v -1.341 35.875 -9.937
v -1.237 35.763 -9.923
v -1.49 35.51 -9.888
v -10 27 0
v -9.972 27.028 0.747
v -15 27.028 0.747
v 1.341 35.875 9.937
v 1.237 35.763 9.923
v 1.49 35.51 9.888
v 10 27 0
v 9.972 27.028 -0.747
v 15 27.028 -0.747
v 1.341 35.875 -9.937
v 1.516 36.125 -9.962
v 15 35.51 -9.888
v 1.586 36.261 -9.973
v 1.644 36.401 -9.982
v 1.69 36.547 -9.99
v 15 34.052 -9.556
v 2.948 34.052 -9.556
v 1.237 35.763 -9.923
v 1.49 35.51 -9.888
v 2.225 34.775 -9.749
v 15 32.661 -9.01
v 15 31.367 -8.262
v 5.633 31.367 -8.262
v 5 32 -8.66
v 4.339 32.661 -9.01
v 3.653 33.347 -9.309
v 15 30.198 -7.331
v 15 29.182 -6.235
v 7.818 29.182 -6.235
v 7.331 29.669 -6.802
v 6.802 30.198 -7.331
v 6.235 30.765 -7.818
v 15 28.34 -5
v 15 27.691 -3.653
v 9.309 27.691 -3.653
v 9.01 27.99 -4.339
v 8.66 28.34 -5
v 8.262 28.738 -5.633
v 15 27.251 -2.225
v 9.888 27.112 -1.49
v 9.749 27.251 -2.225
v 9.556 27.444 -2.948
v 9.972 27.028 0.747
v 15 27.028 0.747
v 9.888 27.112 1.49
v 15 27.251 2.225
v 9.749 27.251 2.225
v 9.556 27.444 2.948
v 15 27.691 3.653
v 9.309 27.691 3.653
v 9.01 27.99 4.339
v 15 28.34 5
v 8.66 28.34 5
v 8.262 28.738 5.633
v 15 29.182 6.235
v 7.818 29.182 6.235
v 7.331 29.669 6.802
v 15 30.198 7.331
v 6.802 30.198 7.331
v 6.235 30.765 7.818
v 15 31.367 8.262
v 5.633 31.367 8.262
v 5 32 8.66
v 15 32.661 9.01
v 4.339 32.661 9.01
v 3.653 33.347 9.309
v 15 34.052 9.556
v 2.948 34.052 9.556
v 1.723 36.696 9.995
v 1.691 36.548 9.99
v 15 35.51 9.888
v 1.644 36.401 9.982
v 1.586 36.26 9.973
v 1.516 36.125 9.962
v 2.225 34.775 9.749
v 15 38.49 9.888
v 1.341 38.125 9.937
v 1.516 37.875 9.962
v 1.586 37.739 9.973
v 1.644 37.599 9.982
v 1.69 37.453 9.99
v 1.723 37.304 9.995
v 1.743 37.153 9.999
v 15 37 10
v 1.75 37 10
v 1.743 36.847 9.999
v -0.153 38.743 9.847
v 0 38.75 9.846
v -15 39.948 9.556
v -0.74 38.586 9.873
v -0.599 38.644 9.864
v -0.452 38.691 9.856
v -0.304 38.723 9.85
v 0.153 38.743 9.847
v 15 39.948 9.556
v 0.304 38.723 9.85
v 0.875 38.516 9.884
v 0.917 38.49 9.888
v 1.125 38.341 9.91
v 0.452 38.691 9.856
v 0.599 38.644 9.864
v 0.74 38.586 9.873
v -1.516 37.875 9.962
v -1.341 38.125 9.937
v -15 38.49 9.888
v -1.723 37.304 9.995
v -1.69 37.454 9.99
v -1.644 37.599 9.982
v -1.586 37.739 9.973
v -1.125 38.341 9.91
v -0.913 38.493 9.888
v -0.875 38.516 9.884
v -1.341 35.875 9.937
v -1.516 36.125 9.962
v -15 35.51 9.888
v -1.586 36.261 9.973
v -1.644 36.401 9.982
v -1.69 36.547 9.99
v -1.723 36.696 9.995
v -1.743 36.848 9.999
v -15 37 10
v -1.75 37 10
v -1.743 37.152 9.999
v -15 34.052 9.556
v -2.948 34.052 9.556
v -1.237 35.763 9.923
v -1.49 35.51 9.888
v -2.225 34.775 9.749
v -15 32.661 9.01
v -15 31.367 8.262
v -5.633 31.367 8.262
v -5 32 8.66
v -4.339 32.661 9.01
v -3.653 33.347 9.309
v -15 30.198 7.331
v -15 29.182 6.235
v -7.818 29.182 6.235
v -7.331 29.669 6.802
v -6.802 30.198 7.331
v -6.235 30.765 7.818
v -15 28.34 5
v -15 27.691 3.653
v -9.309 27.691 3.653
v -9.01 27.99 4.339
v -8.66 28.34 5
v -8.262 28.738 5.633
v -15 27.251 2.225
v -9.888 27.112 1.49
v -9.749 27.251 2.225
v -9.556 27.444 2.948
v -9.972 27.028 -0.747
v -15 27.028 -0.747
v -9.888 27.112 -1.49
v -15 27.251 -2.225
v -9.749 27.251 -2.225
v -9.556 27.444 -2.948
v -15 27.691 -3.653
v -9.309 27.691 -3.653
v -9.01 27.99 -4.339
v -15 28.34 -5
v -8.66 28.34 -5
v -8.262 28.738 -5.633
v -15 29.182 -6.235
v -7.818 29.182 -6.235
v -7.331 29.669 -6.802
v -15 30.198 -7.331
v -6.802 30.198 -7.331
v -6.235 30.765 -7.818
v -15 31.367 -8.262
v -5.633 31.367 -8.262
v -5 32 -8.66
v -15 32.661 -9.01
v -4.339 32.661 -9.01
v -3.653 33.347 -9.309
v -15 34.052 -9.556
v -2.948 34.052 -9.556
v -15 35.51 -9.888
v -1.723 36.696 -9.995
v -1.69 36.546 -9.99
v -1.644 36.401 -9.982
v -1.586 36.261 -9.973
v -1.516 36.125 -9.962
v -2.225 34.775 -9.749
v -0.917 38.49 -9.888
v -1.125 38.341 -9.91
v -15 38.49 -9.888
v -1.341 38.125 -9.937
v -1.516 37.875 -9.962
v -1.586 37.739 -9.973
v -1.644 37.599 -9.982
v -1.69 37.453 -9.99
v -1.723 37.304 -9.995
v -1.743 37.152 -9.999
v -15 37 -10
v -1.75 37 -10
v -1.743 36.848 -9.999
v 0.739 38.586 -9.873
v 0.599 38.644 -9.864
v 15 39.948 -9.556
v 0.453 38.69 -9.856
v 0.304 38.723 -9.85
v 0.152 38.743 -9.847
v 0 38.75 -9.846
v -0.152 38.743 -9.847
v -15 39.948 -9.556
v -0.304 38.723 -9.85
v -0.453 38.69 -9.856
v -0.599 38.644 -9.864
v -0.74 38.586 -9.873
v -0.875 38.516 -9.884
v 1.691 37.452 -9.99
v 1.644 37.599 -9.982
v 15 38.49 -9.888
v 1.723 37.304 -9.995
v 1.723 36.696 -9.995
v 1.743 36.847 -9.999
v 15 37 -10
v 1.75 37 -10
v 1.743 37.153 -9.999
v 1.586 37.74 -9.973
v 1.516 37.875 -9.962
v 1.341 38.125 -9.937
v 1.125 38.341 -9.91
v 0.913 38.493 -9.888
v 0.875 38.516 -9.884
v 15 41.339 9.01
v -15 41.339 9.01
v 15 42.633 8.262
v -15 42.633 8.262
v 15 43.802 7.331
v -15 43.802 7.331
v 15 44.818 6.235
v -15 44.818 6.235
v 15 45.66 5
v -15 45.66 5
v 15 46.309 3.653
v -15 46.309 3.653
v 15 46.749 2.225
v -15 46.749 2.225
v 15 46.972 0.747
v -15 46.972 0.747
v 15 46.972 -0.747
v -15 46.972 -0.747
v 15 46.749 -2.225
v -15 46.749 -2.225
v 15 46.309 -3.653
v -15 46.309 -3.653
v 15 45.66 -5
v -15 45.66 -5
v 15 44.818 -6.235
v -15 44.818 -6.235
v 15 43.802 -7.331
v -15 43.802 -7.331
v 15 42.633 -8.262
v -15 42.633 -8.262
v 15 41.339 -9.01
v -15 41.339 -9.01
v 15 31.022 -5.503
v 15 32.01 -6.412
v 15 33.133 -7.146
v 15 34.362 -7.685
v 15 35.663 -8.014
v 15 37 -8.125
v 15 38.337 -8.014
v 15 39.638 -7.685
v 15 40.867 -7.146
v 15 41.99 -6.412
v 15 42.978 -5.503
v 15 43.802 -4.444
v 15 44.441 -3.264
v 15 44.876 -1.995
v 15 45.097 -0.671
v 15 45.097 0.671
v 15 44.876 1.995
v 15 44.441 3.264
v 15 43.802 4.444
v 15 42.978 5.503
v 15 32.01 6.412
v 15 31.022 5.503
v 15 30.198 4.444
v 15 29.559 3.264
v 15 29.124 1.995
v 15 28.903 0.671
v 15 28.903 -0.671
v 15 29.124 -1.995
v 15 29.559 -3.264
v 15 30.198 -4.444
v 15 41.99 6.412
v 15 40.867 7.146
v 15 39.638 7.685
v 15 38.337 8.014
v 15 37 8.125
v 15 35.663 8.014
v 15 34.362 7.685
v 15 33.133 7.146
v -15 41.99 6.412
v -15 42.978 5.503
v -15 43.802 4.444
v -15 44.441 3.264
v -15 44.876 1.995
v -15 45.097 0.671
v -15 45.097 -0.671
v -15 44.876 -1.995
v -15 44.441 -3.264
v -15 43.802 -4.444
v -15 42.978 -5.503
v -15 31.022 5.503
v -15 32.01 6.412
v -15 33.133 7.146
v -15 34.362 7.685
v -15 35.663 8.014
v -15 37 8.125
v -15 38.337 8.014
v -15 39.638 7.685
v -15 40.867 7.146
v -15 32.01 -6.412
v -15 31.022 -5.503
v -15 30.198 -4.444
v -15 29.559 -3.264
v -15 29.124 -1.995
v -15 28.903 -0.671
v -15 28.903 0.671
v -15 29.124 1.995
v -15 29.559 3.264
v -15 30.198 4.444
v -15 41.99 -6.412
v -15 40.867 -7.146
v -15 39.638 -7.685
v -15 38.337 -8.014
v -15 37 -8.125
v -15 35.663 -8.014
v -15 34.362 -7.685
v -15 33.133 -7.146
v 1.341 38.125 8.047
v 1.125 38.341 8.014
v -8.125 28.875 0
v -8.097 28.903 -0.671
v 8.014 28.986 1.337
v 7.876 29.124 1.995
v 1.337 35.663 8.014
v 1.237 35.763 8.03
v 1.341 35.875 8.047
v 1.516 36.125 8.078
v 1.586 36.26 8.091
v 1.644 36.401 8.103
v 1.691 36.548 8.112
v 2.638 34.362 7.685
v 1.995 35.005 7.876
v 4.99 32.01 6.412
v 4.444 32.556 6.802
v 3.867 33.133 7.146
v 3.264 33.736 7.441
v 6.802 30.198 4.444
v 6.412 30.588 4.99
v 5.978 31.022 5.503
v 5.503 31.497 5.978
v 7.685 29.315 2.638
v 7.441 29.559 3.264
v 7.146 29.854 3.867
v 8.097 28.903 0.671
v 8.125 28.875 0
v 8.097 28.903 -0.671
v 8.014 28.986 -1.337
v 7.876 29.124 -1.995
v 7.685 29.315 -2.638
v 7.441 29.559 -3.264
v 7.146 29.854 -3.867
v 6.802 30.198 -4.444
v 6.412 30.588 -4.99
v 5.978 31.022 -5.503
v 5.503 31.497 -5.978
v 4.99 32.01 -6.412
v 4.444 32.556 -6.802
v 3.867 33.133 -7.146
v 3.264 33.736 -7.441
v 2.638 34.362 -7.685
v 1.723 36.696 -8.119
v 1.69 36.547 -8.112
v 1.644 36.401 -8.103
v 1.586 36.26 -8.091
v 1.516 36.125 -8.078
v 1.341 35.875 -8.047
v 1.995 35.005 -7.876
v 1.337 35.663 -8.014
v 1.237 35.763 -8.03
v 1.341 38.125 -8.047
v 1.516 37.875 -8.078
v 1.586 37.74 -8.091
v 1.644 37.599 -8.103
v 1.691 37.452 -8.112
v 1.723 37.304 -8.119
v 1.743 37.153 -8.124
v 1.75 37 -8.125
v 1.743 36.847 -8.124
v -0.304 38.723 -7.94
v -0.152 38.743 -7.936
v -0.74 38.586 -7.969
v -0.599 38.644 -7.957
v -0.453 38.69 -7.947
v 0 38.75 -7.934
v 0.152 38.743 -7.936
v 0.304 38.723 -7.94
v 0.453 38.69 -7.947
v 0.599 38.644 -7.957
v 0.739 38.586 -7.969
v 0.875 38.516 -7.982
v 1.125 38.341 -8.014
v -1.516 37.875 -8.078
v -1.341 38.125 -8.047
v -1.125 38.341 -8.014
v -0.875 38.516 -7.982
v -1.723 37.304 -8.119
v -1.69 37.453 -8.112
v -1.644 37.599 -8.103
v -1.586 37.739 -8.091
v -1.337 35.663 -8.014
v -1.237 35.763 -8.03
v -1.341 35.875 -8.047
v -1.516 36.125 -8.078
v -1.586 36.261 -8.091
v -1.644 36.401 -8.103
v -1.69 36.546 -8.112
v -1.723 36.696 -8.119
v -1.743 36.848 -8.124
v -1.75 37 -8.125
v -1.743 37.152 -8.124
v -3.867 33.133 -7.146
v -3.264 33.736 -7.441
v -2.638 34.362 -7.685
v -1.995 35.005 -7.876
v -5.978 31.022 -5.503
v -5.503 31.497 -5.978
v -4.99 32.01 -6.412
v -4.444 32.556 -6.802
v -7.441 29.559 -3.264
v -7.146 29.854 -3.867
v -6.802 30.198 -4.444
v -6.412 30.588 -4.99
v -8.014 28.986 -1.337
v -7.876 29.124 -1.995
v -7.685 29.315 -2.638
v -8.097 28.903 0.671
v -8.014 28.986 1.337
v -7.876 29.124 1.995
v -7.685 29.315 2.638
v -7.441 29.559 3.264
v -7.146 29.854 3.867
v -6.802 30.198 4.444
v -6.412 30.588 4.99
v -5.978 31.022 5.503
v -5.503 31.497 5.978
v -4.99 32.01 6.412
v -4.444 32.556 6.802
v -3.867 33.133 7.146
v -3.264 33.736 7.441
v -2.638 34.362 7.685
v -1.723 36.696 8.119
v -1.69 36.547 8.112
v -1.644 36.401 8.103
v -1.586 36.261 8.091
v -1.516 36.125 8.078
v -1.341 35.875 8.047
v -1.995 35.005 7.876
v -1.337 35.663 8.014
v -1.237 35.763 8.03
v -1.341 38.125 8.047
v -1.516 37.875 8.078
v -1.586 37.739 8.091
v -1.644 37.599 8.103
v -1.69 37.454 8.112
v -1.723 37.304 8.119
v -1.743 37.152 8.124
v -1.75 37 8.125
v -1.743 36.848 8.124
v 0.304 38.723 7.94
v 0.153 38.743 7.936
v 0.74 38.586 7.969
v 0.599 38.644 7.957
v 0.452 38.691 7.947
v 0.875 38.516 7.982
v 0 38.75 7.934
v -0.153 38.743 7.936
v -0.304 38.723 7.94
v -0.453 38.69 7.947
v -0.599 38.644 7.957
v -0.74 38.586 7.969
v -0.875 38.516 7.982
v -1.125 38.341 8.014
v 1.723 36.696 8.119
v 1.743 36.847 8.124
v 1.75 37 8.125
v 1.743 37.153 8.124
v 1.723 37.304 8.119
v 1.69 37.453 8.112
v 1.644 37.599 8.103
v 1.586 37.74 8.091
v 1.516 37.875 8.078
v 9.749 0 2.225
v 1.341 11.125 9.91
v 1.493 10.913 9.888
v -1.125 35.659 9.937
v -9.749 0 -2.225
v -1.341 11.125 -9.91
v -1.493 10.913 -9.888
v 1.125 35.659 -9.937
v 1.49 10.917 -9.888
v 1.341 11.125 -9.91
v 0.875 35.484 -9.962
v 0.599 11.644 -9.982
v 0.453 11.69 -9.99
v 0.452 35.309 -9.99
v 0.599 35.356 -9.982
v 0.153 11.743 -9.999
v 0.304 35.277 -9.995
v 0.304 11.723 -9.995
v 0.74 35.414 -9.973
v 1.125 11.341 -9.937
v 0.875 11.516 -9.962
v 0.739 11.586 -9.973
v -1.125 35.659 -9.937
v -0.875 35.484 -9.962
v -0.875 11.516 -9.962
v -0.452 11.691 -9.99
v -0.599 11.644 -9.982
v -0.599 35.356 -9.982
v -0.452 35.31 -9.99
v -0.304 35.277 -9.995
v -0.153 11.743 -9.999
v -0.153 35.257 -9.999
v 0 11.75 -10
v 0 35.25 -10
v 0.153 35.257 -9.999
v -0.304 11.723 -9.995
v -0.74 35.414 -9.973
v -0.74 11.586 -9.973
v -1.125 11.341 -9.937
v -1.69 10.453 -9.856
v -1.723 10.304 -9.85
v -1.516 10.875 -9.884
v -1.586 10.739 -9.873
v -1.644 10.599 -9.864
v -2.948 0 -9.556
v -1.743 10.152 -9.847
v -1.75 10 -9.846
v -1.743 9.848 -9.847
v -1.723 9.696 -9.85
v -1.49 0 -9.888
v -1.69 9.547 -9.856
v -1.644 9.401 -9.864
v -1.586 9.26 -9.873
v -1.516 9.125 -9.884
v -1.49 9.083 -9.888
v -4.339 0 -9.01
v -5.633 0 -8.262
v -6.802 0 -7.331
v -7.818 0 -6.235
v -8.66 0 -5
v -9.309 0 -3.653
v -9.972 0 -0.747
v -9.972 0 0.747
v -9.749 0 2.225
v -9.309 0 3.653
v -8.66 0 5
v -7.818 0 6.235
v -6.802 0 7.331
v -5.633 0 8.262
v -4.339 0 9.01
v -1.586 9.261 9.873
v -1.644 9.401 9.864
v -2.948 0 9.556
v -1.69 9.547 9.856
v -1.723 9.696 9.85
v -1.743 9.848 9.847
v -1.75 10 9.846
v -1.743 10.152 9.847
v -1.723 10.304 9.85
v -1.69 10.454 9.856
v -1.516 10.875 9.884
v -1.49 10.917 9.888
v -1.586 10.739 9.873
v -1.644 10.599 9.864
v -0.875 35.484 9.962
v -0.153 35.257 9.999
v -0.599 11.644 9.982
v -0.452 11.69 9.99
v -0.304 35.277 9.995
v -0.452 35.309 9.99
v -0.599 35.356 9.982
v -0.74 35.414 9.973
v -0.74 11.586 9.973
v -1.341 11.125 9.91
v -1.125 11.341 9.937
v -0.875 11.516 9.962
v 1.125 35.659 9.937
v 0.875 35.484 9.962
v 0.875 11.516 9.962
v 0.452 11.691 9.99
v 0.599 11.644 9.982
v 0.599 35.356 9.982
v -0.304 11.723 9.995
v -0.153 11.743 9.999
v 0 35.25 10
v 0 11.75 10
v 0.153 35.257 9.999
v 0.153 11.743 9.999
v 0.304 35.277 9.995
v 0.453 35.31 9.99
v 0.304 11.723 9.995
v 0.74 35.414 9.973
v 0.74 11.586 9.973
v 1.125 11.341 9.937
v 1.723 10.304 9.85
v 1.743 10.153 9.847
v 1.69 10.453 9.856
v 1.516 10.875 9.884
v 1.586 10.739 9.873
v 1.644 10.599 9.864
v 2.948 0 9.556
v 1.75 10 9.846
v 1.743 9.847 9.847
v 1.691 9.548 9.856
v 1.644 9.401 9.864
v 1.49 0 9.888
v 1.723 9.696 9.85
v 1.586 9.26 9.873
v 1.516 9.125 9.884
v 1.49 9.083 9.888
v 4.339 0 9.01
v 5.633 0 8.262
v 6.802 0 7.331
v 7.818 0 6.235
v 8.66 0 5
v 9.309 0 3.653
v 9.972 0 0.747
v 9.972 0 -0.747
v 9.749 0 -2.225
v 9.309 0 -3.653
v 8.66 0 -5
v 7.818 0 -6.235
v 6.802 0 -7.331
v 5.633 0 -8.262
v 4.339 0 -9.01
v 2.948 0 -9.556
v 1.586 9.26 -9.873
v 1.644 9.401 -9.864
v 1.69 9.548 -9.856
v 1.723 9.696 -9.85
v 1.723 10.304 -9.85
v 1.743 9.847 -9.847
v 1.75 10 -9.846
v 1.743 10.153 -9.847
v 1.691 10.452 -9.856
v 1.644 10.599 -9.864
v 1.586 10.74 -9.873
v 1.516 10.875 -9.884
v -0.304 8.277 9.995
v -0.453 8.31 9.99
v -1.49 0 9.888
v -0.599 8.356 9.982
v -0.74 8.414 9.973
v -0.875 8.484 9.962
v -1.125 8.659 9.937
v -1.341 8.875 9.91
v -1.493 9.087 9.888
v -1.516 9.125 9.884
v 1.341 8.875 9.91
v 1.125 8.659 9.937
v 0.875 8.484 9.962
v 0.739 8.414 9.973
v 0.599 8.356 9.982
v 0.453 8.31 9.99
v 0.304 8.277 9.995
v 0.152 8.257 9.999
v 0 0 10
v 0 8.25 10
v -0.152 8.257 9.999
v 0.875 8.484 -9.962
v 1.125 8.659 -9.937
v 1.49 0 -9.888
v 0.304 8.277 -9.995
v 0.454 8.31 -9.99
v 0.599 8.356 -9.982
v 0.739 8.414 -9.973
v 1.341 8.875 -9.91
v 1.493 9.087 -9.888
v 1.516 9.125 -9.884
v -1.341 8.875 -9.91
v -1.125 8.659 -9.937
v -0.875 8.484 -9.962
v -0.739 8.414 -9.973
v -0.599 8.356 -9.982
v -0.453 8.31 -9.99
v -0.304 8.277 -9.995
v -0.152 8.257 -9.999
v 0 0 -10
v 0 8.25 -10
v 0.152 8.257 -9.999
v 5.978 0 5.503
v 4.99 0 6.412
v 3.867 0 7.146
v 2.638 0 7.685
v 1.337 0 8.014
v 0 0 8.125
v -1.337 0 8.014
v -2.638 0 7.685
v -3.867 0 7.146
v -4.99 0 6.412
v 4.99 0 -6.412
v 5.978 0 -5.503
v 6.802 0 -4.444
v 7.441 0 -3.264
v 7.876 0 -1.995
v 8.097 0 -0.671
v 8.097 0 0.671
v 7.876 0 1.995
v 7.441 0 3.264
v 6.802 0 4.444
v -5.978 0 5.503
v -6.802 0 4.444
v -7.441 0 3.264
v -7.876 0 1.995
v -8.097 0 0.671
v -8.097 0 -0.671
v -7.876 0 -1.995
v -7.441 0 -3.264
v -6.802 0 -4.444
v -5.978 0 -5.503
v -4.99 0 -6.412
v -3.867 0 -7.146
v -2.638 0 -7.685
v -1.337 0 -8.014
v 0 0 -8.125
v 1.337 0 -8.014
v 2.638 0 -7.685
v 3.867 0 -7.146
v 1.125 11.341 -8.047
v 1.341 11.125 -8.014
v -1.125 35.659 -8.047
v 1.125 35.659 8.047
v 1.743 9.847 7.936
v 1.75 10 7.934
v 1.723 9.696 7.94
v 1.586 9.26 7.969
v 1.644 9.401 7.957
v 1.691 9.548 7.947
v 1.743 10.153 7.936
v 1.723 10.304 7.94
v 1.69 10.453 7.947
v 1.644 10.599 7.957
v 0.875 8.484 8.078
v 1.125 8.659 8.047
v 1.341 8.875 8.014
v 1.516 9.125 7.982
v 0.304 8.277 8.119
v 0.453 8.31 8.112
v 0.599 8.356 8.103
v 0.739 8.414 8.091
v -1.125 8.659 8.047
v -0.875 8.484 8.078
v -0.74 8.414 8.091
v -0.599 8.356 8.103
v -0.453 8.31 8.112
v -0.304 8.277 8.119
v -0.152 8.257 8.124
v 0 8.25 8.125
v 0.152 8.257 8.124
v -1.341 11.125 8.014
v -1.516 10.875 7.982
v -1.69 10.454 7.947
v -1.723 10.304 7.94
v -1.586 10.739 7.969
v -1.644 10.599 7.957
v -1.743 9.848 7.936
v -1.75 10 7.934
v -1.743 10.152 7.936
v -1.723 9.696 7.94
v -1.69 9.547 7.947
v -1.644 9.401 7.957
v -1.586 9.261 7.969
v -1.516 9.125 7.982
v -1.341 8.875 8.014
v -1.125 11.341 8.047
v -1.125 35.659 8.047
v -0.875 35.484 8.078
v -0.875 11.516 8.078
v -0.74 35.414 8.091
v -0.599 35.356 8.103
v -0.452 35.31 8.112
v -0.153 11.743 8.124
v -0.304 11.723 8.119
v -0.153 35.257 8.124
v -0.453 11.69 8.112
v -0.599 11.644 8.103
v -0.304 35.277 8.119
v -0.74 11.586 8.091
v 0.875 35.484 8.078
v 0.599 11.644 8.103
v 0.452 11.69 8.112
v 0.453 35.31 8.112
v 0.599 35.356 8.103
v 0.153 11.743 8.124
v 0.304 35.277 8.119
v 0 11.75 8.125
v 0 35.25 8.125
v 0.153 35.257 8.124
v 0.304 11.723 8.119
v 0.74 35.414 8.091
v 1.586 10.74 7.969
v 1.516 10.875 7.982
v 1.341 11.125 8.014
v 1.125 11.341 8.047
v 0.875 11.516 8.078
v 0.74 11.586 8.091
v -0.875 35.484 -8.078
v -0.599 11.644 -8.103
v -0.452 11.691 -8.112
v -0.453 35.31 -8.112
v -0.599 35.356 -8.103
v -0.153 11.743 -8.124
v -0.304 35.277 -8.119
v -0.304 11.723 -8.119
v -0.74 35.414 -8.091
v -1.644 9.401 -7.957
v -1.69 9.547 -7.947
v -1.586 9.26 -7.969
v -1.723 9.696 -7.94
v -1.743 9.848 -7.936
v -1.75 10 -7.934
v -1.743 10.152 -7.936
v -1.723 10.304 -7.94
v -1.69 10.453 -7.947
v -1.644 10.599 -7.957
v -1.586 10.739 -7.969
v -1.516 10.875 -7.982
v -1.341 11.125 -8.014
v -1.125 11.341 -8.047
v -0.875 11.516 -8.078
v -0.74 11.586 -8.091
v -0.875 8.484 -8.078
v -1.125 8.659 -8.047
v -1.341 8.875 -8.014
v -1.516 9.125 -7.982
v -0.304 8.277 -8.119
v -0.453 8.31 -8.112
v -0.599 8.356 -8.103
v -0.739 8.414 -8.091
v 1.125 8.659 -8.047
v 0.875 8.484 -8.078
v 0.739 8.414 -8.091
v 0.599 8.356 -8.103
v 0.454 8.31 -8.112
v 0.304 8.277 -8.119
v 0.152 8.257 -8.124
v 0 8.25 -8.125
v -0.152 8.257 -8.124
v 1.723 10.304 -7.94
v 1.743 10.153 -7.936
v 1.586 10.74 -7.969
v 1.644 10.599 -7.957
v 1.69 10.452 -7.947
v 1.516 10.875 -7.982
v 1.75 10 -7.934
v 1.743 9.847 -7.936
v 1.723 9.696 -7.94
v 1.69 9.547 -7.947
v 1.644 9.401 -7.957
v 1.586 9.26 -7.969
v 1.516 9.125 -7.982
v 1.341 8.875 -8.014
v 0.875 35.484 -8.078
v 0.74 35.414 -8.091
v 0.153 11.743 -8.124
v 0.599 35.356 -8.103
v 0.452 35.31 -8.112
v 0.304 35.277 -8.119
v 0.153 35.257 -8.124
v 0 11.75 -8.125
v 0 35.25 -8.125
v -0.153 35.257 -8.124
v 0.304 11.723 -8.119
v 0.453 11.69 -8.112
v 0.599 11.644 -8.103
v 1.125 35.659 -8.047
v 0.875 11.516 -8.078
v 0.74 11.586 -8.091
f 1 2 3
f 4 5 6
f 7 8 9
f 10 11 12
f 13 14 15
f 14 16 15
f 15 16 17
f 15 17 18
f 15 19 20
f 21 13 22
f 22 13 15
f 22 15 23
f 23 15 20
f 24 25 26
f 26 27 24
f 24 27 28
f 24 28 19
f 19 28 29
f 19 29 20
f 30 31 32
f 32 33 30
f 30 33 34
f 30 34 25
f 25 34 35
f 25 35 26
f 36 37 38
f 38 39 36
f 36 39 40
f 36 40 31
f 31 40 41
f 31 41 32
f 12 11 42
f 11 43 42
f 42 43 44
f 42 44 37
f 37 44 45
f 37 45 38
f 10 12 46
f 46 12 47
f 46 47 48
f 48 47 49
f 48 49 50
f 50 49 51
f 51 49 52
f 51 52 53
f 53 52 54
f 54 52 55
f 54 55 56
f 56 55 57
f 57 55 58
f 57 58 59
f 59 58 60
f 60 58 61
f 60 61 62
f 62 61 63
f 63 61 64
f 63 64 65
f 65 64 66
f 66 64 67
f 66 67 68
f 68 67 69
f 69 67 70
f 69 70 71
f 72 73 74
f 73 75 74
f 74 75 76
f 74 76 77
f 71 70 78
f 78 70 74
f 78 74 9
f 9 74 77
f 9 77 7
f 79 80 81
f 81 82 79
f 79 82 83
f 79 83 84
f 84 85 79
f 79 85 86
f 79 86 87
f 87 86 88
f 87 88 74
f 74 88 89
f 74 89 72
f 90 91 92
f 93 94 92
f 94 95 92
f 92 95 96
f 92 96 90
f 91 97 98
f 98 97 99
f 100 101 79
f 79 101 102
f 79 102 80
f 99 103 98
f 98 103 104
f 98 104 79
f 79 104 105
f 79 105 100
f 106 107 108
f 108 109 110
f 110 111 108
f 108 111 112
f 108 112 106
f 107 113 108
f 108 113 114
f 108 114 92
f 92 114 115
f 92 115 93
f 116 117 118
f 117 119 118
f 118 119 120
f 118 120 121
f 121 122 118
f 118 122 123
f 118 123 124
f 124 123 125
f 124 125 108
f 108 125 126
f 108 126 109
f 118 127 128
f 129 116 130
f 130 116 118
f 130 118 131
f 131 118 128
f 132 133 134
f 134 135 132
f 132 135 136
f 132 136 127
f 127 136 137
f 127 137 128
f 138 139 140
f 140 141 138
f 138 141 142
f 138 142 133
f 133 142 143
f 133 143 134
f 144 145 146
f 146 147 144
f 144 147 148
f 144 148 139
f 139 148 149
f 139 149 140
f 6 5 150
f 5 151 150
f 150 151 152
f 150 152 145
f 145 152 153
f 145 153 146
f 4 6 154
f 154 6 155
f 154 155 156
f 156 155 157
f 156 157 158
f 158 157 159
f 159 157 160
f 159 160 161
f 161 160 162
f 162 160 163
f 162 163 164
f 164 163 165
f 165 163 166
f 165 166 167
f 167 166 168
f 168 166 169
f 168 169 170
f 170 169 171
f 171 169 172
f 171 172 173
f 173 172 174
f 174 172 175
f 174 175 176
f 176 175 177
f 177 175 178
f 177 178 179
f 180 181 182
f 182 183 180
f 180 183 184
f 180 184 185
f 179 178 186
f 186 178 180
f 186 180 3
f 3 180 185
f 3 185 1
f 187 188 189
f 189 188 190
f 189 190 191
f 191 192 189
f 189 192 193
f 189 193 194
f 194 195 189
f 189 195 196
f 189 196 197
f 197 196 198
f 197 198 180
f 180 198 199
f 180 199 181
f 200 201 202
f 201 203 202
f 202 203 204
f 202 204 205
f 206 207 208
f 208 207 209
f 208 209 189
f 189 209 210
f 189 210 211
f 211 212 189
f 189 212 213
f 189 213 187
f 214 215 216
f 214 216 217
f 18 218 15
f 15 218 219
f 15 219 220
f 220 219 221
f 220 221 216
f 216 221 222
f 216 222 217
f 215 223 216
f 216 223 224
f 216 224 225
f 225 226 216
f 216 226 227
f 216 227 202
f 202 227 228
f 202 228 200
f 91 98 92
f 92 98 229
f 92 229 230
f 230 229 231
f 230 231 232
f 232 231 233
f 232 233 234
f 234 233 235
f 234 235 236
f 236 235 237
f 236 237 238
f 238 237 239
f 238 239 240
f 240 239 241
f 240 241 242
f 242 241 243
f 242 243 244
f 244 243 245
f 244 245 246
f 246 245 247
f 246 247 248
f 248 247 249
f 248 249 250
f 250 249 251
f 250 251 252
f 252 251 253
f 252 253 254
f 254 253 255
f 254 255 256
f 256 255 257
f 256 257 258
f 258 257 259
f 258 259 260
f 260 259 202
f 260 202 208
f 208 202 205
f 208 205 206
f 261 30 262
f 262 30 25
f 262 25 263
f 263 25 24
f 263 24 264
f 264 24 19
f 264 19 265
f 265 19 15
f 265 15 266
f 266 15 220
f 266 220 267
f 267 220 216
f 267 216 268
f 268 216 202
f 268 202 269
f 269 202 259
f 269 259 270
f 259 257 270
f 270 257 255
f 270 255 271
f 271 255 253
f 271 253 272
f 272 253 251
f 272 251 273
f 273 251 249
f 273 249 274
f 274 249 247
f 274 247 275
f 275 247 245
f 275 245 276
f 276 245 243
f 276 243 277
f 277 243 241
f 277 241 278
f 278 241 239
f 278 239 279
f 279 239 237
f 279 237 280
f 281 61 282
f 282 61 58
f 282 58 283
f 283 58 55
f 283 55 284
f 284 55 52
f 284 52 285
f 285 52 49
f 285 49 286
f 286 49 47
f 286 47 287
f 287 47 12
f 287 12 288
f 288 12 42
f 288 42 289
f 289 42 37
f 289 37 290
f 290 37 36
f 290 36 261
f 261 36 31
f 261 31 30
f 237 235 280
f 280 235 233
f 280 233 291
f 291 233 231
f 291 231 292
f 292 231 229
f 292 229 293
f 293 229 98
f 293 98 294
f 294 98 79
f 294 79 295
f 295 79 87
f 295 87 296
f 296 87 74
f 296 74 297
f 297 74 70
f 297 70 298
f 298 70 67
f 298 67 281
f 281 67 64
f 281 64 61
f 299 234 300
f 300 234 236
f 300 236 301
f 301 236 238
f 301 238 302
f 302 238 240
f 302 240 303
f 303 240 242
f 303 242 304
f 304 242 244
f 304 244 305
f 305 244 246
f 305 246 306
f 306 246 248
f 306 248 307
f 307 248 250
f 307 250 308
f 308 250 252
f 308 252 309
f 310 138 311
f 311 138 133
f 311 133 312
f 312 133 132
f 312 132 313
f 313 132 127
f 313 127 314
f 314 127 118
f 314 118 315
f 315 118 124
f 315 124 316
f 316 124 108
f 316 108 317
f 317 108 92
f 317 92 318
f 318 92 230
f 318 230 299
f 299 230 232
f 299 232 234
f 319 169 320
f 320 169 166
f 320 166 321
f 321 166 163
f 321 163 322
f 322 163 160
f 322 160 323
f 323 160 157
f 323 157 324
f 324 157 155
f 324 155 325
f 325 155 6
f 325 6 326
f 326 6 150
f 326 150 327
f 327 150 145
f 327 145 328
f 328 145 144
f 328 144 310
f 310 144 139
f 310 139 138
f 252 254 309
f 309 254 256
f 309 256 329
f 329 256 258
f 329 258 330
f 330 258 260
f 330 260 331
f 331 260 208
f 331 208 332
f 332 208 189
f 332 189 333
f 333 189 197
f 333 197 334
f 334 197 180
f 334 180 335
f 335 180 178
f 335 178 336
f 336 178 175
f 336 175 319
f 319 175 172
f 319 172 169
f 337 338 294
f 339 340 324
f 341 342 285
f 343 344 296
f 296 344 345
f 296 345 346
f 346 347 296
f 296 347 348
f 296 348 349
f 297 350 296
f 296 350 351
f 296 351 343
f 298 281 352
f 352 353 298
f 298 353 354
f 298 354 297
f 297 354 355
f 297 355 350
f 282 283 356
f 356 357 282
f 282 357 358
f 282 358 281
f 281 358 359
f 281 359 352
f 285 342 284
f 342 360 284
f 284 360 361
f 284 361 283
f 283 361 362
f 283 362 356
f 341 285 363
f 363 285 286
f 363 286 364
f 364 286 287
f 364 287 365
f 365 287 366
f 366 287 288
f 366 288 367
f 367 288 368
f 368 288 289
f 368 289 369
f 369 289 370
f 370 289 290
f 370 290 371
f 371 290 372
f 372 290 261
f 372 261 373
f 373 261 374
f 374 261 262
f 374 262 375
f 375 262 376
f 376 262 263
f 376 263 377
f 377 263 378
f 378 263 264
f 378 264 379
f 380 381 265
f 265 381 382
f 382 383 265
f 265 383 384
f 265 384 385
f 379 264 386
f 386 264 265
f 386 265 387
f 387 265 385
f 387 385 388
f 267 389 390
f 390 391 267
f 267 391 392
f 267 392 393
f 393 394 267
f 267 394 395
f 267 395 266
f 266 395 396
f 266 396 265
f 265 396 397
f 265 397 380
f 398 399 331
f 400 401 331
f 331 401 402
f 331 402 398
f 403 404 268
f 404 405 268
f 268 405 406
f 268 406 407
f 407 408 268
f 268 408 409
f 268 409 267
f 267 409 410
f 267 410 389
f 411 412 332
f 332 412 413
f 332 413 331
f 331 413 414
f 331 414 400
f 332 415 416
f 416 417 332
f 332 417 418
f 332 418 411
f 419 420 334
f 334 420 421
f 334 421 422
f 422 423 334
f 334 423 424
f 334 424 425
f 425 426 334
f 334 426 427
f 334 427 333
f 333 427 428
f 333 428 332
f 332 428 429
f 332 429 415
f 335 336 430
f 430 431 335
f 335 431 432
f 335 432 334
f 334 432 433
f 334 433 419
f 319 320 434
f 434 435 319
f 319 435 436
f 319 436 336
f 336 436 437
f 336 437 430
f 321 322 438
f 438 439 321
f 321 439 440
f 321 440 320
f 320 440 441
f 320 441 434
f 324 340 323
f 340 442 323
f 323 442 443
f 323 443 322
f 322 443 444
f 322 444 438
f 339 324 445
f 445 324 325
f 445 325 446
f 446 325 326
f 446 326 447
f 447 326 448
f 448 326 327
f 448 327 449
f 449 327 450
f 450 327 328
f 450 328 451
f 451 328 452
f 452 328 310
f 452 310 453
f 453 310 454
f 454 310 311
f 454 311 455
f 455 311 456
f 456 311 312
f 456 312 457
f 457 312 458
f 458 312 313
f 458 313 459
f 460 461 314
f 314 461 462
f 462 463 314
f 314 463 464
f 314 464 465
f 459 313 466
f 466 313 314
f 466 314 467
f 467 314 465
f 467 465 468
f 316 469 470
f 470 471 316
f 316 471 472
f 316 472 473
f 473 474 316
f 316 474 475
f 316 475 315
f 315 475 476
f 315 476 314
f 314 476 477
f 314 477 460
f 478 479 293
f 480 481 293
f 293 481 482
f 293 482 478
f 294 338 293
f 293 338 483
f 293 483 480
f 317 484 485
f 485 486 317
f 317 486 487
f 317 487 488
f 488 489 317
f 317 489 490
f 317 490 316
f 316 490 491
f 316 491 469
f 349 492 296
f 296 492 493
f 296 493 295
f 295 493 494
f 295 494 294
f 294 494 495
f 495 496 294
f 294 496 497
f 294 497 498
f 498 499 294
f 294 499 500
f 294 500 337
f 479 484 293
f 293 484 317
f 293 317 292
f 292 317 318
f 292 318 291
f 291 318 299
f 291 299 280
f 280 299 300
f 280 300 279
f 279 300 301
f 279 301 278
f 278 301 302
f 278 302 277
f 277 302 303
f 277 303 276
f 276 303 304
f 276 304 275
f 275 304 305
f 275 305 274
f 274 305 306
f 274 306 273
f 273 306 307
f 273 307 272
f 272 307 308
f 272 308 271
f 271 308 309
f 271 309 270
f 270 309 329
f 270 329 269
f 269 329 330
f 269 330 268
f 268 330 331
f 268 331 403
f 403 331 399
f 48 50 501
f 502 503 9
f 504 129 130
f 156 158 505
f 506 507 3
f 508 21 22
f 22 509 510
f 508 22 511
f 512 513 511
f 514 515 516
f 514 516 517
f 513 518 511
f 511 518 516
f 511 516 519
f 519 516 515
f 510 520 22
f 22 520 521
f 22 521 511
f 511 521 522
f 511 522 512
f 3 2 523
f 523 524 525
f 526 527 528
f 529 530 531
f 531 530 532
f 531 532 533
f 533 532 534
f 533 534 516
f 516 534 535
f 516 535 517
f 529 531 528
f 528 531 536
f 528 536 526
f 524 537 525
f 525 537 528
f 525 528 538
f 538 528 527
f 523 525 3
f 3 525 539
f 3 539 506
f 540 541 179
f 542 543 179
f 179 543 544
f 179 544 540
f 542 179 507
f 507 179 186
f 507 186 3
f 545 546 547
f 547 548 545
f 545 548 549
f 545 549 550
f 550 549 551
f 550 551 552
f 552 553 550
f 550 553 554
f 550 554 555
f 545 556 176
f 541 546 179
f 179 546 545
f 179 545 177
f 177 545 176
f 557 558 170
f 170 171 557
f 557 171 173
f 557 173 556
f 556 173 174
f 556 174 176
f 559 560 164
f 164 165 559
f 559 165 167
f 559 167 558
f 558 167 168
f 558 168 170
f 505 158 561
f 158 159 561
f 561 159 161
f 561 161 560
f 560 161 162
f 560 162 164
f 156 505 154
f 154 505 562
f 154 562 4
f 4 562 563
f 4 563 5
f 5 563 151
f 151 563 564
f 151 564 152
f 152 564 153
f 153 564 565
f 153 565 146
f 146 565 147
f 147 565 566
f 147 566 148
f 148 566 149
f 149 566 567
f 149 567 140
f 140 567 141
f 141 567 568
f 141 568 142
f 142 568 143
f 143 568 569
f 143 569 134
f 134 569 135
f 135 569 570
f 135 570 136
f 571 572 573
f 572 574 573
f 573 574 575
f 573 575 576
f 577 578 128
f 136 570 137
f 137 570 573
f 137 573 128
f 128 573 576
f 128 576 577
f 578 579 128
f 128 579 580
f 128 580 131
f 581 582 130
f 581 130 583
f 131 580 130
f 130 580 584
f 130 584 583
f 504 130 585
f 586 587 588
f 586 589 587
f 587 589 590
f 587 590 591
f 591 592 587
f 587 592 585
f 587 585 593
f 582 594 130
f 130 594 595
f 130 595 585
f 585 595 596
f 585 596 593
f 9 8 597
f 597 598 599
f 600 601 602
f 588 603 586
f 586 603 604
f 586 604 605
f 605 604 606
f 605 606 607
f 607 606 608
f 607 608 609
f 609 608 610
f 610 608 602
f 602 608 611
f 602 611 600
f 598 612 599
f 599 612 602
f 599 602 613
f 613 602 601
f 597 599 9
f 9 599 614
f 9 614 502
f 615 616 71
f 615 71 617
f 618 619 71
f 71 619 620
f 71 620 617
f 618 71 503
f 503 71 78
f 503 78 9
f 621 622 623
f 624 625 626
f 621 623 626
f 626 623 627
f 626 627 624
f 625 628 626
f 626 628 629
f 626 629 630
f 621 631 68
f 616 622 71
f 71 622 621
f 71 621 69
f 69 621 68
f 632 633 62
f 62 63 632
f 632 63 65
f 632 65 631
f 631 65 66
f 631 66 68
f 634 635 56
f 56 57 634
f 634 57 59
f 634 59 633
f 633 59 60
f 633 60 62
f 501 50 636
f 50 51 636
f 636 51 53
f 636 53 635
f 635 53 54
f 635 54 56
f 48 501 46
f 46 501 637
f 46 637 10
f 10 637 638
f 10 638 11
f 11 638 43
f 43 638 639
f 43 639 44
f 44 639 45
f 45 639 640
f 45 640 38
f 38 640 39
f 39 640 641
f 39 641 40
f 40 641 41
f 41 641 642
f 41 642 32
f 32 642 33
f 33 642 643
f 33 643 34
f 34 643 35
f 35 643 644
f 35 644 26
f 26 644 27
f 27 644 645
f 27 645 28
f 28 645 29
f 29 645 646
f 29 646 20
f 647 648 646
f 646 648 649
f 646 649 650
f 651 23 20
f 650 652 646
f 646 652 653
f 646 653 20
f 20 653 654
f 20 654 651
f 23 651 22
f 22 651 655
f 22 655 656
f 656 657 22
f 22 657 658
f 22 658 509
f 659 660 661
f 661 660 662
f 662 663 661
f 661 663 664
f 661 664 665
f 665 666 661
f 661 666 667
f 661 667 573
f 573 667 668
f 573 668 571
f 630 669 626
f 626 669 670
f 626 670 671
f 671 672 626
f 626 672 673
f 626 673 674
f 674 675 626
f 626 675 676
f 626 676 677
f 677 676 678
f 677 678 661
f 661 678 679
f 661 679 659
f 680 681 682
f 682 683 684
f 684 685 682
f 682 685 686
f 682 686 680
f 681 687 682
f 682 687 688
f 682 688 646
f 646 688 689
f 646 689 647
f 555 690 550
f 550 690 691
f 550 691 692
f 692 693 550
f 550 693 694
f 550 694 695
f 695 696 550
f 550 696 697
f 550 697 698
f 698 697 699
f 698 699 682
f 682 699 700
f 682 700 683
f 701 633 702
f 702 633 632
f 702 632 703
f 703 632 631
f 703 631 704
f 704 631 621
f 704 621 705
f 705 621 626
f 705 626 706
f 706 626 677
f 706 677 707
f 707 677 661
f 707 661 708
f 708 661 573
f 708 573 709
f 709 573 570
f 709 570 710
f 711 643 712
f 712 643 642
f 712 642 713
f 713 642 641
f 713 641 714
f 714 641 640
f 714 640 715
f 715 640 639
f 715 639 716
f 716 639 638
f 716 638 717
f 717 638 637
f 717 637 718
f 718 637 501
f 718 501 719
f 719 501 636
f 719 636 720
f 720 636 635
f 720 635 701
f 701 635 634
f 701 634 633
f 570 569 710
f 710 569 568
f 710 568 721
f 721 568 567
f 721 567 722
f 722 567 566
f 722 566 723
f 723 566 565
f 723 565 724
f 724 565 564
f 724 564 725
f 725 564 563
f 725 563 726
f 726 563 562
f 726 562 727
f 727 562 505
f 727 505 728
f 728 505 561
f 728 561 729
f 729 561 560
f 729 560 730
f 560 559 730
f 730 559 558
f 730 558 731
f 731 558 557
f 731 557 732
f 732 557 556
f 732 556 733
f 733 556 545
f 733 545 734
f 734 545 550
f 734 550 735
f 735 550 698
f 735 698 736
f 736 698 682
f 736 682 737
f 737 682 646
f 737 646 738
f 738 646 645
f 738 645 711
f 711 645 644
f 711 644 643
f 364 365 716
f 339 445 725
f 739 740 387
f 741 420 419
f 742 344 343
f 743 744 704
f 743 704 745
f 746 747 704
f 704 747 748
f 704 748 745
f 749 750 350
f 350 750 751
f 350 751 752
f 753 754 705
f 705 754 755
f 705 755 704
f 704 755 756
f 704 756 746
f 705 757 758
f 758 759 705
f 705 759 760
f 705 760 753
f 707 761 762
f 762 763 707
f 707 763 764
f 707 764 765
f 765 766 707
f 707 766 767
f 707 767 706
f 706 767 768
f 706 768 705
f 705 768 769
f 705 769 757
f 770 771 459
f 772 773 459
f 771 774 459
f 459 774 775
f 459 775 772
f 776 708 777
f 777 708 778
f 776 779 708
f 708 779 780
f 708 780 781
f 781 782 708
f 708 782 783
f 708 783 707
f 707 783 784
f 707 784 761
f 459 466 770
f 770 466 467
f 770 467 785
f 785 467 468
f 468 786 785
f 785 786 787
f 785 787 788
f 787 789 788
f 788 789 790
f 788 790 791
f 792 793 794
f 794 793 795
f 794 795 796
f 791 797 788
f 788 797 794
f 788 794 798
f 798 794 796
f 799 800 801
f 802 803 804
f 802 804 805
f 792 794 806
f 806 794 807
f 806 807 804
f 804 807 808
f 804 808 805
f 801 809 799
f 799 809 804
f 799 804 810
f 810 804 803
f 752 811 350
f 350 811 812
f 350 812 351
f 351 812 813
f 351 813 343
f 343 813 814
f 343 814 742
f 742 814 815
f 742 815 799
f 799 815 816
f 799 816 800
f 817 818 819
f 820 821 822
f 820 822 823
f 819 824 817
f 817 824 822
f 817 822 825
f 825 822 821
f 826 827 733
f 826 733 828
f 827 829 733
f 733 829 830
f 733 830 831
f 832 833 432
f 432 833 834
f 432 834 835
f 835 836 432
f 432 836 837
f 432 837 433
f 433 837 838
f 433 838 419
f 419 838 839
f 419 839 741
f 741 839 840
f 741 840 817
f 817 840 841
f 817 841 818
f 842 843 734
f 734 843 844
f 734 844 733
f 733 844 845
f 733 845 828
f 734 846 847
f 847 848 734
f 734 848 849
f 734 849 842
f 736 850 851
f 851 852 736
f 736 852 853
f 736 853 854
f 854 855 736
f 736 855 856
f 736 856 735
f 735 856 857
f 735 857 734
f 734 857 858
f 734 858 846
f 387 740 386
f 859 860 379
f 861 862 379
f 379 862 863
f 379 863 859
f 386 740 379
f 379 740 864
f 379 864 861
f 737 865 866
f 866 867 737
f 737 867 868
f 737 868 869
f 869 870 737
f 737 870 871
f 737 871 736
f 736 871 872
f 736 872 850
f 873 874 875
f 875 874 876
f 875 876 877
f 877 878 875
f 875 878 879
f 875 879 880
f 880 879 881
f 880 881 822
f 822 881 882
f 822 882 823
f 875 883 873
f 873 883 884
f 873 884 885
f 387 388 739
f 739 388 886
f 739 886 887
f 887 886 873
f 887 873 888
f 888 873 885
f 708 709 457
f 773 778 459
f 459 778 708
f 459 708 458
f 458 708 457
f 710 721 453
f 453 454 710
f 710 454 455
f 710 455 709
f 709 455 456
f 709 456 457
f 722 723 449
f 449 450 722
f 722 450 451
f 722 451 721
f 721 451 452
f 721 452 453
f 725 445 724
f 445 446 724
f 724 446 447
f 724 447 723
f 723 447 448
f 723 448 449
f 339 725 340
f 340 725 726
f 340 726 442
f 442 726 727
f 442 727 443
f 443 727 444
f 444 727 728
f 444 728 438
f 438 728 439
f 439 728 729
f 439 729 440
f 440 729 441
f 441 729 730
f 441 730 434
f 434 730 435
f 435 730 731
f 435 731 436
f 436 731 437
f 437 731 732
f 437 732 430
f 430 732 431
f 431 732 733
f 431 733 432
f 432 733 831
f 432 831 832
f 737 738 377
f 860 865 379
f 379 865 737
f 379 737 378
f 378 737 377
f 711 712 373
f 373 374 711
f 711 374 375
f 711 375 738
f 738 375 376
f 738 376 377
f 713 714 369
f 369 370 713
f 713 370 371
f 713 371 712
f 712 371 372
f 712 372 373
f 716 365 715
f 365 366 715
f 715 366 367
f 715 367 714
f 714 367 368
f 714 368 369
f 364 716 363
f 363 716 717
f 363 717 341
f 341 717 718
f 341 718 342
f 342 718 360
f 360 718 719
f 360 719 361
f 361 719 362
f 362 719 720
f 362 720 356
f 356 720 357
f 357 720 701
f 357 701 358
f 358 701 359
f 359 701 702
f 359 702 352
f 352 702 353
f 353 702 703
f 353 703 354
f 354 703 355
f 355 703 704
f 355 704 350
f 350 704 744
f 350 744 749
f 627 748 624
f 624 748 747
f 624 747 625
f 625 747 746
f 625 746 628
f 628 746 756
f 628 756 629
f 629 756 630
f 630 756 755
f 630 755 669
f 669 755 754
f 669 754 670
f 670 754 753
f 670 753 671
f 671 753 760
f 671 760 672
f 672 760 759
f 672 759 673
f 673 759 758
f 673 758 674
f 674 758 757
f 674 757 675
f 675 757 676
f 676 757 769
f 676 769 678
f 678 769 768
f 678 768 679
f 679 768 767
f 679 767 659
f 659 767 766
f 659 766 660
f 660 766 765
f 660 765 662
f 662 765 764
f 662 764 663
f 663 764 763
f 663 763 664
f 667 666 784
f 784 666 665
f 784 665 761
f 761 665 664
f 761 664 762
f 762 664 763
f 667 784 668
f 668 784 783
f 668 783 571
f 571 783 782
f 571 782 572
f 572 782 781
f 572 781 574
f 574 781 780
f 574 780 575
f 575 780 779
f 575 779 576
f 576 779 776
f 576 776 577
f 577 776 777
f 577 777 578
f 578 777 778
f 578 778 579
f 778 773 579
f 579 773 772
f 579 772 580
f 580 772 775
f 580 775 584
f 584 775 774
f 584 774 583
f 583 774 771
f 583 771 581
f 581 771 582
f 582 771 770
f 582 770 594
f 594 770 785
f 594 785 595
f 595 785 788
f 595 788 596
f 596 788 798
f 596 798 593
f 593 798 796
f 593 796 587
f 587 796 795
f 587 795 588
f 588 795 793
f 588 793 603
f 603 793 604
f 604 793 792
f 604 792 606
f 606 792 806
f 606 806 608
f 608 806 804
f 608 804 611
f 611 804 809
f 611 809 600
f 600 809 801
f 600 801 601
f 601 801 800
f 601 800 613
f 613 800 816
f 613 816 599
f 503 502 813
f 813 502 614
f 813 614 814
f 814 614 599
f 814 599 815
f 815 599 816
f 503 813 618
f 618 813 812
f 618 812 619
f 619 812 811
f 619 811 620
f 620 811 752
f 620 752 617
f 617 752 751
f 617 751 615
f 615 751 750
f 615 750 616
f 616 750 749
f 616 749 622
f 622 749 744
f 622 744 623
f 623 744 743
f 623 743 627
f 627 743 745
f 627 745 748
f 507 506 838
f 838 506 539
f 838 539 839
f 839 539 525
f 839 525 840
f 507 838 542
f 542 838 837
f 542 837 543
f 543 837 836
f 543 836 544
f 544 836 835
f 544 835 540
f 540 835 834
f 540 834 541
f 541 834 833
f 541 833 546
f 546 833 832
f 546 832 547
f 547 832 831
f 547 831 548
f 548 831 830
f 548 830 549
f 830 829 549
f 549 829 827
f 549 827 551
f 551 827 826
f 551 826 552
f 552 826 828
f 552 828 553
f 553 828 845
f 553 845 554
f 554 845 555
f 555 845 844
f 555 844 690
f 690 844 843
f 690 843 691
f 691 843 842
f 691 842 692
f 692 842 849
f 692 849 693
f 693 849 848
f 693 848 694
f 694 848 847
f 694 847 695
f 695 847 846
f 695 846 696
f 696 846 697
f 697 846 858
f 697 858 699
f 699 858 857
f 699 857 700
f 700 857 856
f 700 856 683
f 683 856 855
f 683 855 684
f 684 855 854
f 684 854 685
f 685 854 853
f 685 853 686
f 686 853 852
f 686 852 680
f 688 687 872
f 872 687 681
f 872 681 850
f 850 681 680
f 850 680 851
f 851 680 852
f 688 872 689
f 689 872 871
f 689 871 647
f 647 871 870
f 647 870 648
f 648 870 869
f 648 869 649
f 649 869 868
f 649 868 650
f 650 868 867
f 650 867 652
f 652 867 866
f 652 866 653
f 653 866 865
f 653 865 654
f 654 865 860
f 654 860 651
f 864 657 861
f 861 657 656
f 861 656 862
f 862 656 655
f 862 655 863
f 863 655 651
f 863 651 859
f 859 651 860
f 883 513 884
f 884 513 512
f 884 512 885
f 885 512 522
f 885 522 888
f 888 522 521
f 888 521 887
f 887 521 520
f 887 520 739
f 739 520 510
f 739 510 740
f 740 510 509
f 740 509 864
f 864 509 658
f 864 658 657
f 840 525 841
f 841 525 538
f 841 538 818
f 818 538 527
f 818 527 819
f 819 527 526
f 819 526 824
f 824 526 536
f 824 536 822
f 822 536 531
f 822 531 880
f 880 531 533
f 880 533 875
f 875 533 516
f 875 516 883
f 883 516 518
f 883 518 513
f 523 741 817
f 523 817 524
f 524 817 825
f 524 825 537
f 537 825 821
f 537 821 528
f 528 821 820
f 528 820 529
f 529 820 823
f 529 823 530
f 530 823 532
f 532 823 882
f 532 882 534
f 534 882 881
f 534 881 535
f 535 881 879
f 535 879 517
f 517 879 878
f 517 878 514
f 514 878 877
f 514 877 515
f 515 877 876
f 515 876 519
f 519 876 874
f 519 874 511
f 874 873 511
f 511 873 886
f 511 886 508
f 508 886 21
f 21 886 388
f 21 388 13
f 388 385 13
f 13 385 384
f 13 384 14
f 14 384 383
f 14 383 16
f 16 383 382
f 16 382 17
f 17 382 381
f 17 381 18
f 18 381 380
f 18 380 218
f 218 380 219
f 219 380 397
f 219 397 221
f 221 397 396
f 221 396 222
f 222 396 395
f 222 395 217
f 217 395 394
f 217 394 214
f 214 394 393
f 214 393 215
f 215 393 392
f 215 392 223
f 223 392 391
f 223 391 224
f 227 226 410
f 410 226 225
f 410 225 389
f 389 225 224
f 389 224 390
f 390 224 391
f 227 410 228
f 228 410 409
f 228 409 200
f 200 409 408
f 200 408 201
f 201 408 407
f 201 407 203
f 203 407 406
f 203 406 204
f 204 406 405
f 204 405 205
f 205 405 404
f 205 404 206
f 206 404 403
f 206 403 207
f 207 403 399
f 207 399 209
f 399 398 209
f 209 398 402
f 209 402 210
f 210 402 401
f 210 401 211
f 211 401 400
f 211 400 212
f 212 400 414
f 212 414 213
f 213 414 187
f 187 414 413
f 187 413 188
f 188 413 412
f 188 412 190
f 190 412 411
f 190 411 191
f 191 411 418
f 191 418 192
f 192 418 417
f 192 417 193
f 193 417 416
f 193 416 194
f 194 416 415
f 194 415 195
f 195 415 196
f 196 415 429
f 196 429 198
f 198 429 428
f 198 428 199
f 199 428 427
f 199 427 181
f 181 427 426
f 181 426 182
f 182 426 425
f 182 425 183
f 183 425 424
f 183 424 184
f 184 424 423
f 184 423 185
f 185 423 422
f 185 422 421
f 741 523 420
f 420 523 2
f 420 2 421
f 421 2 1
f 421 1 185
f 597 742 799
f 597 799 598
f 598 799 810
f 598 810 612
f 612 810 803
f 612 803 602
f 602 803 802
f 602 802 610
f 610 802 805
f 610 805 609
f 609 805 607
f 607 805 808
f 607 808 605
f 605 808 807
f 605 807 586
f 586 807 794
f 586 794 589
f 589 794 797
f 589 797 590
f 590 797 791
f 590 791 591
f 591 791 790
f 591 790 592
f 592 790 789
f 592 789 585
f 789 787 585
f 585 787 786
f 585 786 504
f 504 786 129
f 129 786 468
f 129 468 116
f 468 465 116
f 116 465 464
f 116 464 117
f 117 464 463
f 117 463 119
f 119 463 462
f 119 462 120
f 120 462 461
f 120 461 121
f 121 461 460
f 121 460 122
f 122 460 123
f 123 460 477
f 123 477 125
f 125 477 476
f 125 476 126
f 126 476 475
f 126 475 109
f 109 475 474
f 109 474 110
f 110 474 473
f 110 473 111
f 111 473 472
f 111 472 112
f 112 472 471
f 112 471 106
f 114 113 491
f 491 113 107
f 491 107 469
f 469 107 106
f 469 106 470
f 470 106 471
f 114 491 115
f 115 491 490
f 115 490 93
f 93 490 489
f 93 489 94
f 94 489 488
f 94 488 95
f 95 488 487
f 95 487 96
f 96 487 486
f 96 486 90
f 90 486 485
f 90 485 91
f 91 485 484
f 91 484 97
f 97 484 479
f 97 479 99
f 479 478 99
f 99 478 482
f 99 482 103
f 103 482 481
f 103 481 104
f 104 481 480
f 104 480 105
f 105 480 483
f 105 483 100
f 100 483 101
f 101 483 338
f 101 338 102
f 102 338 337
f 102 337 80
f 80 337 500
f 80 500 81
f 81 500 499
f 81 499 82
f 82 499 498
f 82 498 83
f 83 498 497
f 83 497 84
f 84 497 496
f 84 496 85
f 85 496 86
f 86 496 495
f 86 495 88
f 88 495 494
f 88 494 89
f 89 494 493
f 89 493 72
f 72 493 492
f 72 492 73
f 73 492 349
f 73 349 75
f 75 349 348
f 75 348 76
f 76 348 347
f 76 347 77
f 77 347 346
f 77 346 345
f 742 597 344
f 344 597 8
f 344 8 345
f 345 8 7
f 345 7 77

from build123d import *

# Parameters (mm, degrees)
SKETCH1_R                = 10
SKETCH1_R_2              = 8.125
BOSS_EXTRUDE1_DEPTH      = 25
SKETCH2_R                = 10
SKETCH2_R_2              = 8.125
BOSS_EXTRUDE2_DEPTH      = 15
BOSS_EXTRUDE4_REACH      = 32.822
BOSS_EXTRUDE4_END_RADIUS = 10
SKETCH4_R                = 10
CUT_EXTRUDE3_REACH       = 32.822
SKETCH7_R                = 8.125
CUT_EXTRUDE1_DEPTH       = 51.338851795
CUT_EXTRUDE1_DEPTH_BACK  = 51.338851795
SKETCH5_R                = 1.75
CUT_EXTRUDE2_DEPTH       = 51.338851814
CUT_EXTRUDE2_DEPTH_BACK  = 51.338851814
SKETCH6_R                = 1.75


with BuildPart() as part:
    # Sketch1 → Boss-Extrude1 (new body)
    with BuildSketch(Plane(origin=(0, 0, 0), x_dir=(1, 0, 0), z_dir=(0, 1, 0))):
        with Locations(Location((0, 0, 0), (0, 0, 270))):
            Circle(SKETCH1_R)
        with Locations(Location((0, 0, 0), (0, 0, 270))):
            Circle(SKETCH1_R_2, mode=Mode.SUBTRACT)
    extrude(amount=BOSS_EXTRUDE1_DEPTH)



with BuildPart() as body_2:
    # Sketch2 → Boss-Extrude2 (new, symmetric)
    with BuildSketch(Plane(origin=(0, 0, 0), x_dir=(0, 0, -1), z_dir=(1, 0, 0))):
        with Locations((0, 37)):
            Circle(SKETCH2_R)
        with Locations((0, 37)):
            Circle(SKETCH2_R_2, mode=Mode.SUBTRACT)
    extrude(amount=BOSS_EXTRUDE2_DEPTH, both=True)


with BuildPart() as part_1:
    add(part.part)

    add(body_2.part)  # Boss-Extrude4 merges body 2
    # Boss-Extrude4: up to this cylinder (the profile starts outside it)
    boss_extrude4_end = Plane(origin=(0, 37, 0), z_dir=(-1, 0, 0)) * Cylinder(BOSS_EXTRUDE4_END_RADIUS, 86.644, mode=Mode.PRIVATE)
    # Sketch4 → Boss-Extrude4 (add, up to the surface)
    with BuildSketch(Plane(origin=(0, 25, 0), x_dir=(1, 0, 0), z_dir=(0, 1, 0)), mode=Mode.PRIVATE) as boss_extrude4_sk1:
        with Locations(Location((0, 0, 0), (0, 0, 270))):
            Circle(SKETCH4_R)
    boss_extrude4_tool1 = extrude(boss_extrude4_sk1.sketch, amount=BOSS_EXTRUDE4_REACH, mode=Mode.PRIVATE) - boss_extrude4_end
    add(boss_extrude4_tool1.solids().sort_by_distance((0, 25, 0))[0])

    # Sketch7 → Cut-Extrude3 (cut, up to next)
    with BuildSketch(Plane.XZ.offset(-25), mode=Mode.PRIVATE) as cut_extrude3_sk1:
        with Locations(Location((0, 0, 0), (0, 0, 90))):
            Circle(SKETCH7_R)
    cut_extrude3_tool1 = extrude(cut_extrude3_sk1.sketch, amount=-CUT_EXTRUDE3_REACH, mode=Mode.PRIVATE) & part_1.part
    add(cut_extrude3_tool1.solids().sort_by_distance((0, 25, 0))[0], mode=Mode.SUBTRACT)

    # Sketch5 → Cut-Extrude1 (cut, two sides: drawn at the far end of the back side and taken through both)
    with BuildSketch(Plane.XY.offset(-CUT_EXTRUDE1_DEPTH_BACK)):
        with Locations((0, 10)):
            Circle(SKETCH5_R)
    extrude(amount=CUT_EXTRUDE1_DEPTH + CUT_EXTRUDE1_DEPTH_BACK, mode=Mode.SUBTRACT)

    # Sketch6 → Cut-Extrude2 (cut, two sides: drawn at the far end of the back side and taken through both)
    with BuildSketch(Plane.XY.offset(-CUT_EXTRUDE2_DEPTH_BACK)):
        with Locations(Location((0, 37, 0), (0, 0, 314.999999393))):
            Circle(SKETCH6_R)
    extrude(amount=CUT_EXTRUDE2_DEPTH + CUT_EXTRUDE2_DEPTH_BACK, mode=Mode.SUBTRACT)


solid = part_1.part
